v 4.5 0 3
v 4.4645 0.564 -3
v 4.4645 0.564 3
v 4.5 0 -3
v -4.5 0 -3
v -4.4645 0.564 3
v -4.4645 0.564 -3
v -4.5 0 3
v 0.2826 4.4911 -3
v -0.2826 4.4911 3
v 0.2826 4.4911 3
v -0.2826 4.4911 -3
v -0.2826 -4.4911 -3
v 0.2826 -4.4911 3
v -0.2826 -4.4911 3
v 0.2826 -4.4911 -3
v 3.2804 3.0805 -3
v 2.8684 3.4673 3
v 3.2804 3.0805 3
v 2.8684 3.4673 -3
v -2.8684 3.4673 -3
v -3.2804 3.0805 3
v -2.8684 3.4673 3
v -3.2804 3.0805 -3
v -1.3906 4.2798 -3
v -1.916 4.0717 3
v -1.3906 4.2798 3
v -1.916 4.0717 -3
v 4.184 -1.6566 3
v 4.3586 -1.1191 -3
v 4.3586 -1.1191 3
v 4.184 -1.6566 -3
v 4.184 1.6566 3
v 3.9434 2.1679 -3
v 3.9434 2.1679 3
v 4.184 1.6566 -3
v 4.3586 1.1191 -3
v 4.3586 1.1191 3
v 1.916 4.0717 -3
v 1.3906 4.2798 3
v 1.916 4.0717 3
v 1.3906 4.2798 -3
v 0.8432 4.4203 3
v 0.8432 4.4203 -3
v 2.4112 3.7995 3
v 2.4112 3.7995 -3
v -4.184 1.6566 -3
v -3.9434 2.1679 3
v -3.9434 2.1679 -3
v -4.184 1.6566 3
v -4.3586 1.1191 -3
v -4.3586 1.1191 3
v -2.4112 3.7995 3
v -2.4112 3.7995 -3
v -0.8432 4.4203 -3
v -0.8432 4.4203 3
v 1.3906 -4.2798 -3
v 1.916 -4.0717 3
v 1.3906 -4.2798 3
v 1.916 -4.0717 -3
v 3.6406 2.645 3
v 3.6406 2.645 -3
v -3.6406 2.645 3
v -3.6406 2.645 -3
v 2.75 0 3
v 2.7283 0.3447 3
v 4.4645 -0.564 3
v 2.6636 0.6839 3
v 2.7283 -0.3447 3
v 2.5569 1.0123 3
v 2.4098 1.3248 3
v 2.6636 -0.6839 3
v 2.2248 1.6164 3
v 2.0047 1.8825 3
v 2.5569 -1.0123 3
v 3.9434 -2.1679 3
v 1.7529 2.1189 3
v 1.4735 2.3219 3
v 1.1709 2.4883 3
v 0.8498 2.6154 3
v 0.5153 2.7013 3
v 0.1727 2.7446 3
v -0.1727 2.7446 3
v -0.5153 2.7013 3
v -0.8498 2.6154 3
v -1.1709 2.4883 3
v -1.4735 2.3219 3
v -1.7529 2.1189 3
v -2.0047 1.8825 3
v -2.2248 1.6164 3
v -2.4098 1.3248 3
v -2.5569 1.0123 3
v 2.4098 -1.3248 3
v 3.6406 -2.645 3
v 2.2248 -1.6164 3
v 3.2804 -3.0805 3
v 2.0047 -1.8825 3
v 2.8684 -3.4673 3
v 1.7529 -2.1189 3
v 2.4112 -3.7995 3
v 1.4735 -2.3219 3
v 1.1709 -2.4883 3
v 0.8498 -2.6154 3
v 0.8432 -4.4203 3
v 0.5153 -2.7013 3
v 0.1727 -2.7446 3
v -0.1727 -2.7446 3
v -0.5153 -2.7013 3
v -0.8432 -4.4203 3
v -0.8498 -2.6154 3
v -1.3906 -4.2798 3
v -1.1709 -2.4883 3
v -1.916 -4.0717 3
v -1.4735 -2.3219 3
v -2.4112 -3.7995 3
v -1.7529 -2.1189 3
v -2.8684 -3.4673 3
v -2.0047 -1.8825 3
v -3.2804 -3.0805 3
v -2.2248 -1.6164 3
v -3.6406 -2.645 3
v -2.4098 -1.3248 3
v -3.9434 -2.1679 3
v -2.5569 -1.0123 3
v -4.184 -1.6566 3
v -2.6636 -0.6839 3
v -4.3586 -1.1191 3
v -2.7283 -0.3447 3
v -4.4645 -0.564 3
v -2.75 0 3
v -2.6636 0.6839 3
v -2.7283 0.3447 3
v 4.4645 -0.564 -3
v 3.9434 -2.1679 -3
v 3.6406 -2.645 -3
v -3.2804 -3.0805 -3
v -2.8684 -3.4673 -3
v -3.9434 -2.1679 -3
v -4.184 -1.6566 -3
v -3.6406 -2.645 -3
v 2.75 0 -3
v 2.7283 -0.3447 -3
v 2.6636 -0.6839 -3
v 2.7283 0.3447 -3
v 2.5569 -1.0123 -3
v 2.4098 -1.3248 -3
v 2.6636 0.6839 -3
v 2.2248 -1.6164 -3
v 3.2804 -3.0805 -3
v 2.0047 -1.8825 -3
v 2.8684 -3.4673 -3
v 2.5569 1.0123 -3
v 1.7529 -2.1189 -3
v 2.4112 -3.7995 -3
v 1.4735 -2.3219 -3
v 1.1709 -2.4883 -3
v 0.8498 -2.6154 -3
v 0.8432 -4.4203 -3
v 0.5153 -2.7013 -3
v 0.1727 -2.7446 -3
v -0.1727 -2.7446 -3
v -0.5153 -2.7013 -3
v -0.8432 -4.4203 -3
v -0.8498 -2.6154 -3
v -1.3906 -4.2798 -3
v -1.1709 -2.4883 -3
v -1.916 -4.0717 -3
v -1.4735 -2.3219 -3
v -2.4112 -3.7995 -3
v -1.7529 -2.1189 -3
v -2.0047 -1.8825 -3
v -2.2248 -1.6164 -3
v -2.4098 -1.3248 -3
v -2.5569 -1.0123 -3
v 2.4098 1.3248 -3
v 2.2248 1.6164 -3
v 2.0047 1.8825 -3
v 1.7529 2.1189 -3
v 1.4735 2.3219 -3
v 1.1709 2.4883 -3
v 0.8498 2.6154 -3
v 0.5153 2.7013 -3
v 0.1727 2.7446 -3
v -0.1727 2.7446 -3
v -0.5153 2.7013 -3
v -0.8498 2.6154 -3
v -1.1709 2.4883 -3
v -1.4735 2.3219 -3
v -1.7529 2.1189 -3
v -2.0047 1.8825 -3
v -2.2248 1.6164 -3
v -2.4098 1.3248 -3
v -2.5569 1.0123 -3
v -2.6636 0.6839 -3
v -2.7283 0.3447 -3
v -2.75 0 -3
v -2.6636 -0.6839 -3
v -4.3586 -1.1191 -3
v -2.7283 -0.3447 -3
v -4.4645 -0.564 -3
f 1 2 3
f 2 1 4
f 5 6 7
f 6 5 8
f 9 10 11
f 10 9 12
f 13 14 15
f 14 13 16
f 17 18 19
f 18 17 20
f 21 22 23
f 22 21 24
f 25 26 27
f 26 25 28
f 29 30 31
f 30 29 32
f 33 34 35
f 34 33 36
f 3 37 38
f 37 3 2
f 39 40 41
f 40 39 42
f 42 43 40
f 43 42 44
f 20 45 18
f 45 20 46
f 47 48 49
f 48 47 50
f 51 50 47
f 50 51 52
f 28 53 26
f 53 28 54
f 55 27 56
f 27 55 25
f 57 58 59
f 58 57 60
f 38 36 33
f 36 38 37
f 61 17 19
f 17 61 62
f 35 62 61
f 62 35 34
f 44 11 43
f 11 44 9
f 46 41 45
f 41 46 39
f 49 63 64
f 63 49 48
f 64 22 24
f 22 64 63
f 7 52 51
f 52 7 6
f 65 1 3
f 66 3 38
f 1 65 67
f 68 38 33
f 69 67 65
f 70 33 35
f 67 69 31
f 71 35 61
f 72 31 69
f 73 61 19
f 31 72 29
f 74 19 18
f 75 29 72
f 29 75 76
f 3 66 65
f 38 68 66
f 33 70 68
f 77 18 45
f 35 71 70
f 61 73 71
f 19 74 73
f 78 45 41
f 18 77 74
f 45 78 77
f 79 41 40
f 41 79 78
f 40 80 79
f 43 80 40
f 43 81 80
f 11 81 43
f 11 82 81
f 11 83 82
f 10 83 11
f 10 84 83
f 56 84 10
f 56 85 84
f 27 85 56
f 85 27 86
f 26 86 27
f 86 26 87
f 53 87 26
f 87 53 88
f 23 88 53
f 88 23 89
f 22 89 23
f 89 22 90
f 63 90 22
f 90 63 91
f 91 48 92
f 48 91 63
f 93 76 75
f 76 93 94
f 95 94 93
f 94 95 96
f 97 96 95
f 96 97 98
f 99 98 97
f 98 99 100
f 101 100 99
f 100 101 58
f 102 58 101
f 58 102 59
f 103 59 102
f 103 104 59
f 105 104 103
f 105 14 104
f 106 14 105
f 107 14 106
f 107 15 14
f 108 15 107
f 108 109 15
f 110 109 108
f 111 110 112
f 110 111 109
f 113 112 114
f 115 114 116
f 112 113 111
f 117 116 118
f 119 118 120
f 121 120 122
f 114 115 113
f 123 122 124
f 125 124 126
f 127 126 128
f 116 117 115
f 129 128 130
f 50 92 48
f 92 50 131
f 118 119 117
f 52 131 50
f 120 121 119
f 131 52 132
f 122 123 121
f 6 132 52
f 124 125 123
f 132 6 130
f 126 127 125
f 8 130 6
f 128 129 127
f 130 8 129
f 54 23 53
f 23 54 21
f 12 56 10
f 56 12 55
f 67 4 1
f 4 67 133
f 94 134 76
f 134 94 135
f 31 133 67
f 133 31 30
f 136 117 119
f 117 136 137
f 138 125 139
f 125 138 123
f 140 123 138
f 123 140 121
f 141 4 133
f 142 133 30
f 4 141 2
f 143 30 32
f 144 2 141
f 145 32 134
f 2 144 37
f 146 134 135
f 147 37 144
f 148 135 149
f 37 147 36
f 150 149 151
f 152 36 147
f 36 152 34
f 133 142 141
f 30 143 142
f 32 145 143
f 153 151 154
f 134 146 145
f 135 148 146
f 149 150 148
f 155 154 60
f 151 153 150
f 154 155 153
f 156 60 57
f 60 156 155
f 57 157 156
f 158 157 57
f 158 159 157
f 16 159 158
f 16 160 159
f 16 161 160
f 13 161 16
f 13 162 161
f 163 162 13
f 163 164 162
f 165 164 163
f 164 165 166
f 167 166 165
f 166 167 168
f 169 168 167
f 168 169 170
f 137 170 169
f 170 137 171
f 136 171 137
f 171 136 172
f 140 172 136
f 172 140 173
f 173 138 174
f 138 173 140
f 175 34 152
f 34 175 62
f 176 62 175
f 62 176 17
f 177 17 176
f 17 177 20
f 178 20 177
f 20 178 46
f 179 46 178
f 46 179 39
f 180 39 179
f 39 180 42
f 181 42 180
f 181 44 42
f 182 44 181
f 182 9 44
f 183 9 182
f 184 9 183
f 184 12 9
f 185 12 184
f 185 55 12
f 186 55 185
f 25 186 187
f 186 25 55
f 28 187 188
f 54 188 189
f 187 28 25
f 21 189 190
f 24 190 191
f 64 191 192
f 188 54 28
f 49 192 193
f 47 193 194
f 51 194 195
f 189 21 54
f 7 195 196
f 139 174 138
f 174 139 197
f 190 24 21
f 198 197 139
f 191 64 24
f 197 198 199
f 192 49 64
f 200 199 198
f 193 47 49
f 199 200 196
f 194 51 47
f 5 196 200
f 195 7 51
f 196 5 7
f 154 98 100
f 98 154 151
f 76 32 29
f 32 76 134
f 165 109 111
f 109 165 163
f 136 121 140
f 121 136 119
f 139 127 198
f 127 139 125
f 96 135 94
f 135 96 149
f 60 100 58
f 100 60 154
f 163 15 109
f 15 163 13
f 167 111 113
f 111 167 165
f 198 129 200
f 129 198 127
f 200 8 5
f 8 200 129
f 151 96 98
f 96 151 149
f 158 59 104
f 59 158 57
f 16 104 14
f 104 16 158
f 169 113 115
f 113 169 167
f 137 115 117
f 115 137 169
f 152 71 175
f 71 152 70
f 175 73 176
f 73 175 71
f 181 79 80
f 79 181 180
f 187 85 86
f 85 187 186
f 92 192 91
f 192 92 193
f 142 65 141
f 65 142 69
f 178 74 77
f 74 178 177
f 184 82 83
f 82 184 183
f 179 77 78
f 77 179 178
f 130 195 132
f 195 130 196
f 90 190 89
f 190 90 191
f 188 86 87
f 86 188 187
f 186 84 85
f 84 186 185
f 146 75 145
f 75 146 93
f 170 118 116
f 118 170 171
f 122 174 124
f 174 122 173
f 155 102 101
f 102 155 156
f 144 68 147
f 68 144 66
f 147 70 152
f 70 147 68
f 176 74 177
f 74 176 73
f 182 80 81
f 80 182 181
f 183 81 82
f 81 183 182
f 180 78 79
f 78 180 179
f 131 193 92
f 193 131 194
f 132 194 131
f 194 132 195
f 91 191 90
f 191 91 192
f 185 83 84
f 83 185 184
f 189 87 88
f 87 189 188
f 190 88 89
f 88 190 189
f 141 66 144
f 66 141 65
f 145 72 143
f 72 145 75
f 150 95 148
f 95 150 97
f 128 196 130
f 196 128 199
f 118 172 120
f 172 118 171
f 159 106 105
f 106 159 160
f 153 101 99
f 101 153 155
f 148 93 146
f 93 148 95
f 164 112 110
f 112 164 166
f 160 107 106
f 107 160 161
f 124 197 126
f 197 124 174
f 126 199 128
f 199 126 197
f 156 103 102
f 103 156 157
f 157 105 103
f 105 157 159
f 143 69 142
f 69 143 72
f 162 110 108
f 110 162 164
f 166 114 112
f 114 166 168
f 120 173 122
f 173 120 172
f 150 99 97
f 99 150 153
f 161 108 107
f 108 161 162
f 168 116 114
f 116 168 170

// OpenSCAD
$fn = 50;


difference() {
	union() {
		translate(v = [0, 0, -3.0000000000]) {
			cylinder(h = 6, r = 4.5000000000);
		}
	}
	union() {
		translate(v = [0, 0, -100.0000000000]) {
			cylinder(h = 200, r = 2.7500000000);
		}
	}
}
